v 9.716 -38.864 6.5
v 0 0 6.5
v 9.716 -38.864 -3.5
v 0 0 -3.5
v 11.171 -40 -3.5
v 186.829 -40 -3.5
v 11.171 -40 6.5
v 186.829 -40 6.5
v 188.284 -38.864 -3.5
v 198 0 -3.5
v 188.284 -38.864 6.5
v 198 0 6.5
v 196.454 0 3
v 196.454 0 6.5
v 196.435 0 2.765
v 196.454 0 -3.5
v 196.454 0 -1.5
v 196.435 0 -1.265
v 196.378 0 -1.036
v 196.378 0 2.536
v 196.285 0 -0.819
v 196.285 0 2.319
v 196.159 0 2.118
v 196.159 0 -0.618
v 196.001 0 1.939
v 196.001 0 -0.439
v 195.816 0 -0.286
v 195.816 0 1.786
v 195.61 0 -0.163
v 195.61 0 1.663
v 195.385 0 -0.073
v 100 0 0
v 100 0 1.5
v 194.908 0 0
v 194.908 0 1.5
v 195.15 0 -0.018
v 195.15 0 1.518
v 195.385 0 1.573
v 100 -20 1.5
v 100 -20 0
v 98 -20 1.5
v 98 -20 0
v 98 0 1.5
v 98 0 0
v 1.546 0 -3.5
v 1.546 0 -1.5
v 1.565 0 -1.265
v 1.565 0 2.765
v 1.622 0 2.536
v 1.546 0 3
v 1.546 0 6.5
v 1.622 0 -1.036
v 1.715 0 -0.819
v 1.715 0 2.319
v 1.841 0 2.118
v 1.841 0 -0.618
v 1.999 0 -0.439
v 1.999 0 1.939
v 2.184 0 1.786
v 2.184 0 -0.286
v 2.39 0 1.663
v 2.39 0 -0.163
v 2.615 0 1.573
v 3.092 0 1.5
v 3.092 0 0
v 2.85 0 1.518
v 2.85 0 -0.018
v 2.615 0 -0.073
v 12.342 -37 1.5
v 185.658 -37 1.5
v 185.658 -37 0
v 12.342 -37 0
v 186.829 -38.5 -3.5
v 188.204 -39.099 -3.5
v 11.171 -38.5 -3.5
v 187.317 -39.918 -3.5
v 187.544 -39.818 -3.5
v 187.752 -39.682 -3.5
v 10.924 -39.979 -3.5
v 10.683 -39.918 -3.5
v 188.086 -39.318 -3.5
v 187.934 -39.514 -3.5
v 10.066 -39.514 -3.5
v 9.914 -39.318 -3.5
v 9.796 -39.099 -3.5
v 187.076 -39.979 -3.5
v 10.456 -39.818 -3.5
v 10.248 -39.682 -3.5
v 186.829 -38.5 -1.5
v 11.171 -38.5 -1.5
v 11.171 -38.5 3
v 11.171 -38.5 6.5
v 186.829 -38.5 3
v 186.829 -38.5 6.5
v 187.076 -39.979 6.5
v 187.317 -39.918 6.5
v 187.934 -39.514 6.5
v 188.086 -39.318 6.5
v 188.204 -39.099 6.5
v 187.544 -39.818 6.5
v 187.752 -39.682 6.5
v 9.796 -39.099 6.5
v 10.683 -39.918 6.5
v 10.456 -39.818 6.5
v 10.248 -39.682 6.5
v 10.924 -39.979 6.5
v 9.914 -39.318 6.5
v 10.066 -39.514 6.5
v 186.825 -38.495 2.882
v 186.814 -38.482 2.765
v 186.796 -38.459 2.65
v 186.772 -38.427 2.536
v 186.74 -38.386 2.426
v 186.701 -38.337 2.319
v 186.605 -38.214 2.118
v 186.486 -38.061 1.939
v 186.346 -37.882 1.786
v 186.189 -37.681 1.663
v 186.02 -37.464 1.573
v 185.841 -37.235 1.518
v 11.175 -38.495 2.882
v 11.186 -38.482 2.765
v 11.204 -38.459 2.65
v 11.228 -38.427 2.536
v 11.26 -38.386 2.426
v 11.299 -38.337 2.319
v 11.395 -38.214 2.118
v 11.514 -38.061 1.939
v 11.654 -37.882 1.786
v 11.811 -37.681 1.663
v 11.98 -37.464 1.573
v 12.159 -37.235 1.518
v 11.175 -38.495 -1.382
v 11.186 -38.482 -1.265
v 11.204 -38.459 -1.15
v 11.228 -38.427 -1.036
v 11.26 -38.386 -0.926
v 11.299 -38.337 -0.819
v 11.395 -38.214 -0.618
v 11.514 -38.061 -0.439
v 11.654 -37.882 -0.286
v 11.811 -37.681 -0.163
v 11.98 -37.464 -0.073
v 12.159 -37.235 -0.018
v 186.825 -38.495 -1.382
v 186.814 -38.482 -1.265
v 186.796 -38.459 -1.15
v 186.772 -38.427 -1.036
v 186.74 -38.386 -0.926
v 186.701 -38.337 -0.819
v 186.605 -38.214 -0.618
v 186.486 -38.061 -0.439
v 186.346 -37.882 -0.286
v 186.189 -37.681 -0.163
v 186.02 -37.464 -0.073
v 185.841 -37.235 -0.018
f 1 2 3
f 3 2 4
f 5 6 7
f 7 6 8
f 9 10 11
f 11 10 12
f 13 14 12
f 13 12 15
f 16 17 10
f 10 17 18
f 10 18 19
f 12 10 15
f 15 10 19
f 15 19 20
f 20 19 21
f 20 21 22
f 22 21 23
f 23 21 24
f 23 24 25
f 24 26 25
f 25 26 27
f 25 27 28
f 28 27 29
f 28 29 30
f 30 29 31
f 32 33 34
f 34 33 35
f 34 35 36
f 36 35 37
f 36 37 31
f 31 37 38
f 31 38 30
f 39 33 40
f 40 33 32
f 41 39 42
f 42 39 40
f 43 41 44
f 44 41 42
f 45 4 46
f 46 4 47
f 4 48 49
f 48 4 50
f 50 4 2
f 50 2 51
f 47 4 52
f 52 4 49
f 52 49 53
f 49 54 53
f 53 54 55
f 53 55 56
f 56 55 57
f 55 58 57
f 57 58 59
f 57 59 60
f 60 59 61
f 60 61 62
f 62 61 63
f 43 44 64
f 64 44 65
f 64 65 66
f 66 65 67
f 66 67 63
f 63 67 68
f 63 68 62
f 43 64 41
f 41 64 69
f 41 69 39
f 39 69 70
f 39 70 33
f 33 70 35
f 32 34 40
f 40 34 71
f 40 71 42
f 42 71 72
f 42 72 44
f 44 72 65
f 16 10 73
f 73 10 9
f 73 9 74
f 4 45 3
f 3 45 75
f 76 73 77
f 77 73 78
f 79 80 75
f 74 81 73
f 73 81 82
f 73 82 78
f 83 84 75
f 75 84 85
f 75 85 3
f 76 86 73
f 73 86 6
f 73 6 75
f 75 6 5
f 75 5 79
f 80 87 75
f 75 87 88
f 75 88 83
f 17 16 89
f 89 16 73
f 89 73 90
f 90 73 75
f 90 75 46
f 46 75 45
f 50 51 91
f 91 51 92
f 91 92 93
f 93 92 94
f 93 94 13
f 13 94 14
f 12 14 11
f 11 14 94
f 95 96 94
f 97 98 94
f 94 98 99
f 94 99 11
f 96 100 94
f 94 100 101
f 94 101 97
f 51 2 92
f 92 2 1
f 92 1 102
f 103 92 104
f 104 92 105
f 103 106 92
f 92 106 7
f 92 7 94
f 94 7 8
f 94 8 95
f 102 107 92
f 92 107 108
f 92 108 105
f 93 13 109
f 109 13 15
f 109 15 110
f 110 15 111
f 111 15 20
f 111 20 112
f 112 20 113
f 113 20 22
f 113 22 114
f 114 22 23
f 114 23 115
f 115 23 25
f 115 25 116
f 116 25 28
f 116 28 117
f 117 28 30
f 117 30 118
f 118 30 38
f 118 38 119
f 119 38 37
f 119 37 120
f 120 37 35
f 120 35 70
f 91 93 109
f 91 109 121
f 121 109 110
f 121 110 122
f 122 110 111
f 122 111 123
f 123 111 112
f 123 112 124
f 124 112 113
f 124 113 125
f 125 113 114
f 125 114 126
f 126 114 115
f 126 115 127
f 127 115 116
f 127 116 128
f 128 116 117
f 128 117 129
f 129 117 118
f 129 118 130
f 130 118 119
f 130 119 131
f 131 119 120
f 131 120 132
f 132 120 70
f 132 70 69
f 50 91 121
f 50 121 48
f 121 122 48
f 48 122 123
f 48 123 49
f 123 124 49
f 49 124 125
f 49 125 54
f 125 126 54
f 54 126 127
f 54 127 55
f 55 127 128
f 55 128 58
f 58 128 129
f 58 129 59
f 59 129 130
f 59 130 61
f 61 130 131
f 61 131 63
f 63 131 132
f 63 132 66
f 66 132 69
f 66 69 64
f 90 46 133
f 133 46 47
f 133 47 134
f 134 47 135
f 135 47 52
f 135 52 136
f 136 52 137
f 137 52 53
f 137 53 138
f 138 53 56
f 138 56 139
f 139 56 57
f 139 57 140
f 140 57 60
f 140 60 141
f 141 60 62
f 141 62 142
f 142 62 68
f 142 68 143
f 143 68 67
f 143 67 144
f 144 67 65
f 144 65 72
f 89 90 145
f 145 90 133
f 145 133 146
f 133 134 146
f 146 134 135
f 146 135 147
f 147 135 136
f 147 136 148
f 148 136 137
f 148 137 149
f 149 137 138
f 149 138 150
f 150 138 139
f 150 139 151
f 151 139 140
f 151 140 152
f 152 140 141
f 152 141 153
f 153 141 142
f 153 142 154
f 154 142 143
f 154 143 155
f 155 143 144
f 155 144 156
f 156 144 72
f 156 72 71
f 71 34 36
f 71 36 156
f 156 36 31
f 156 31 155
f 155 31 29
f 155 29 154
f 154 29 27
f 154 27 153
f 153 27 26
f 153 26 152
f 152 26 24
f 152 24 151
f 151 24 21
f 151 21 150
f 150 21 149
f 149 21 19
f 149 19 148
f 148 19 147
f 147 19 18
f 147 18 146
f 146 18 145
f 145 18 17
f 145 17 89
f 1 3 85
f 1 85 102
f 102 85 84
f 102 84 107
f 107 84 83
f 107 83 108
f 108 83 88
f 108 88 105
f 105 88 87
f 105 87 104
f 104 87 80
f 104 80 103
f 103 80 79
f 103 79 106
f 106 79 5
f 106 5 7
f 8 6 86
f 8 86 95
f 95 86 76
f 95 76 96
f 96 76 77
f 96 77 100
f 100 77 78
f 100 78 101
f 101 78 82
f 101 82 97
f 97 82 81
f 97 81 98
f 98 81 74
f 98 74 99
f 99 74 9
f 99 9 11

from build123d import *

# Parameters (mm, degrees)
BOSS_EXTRUDE2_DEPTH      = 1.5
BOSS_EXTRUDE3_DEPTH      = 5
BOSS_EXTRUDE3_DEPTH_BACK = 5
FILLET1_R                = 1.5


with BuildPart() as part:
    # Sketch1 → Boss-Extrude2 (new body)
    with BuildSketch(Plane.XY):
        Polygon((0, 0), (98, 0), (98, -20), (100, -20), (100, 0), (198, 0), (188, -40), (10, -40), align=None)
    extrude(amount=BOSS_EXTRUDE2_DEPTH)

    # Sketch5 → Boss-Extrude3 (add, two sides)
    with BuildSketch(Plane.XY.offset(1.5)) as boss_extrude3_sk:
        Polygon((186.82883539, -38.5), (196.45383539, 0), (198, 0), (188, -40), (10, -40), (0, 0), (1.54616461, 0), (11.17116461, -38.5), align=None)
    extrude(amount=BOSS_EXTRUDE3_DEPTH)
    extrude(boss_extrude3_sk.sketch, amount=-BOSS_EXTRUDE3_DEPTH_BACK)

    # Fillet1
    fillet1_edges = [part.edges().sort_by_distance(p)[0] for p in [
        (188, -40, 1.5),
        (10, -40, 1.5),
        (191.64133539, -19.25, 0),
        (99, -38.5, 0),
        (6.35866461, -19.25, 0),
        (6.35866461, -19.25, 1.5),
        (99, -38.5, 1.5),
        (191.64133539, -19.25, 1.5),
    ]]
    fillet(fillet1_edges, radius=FILLET1_R)


solid = part.part
